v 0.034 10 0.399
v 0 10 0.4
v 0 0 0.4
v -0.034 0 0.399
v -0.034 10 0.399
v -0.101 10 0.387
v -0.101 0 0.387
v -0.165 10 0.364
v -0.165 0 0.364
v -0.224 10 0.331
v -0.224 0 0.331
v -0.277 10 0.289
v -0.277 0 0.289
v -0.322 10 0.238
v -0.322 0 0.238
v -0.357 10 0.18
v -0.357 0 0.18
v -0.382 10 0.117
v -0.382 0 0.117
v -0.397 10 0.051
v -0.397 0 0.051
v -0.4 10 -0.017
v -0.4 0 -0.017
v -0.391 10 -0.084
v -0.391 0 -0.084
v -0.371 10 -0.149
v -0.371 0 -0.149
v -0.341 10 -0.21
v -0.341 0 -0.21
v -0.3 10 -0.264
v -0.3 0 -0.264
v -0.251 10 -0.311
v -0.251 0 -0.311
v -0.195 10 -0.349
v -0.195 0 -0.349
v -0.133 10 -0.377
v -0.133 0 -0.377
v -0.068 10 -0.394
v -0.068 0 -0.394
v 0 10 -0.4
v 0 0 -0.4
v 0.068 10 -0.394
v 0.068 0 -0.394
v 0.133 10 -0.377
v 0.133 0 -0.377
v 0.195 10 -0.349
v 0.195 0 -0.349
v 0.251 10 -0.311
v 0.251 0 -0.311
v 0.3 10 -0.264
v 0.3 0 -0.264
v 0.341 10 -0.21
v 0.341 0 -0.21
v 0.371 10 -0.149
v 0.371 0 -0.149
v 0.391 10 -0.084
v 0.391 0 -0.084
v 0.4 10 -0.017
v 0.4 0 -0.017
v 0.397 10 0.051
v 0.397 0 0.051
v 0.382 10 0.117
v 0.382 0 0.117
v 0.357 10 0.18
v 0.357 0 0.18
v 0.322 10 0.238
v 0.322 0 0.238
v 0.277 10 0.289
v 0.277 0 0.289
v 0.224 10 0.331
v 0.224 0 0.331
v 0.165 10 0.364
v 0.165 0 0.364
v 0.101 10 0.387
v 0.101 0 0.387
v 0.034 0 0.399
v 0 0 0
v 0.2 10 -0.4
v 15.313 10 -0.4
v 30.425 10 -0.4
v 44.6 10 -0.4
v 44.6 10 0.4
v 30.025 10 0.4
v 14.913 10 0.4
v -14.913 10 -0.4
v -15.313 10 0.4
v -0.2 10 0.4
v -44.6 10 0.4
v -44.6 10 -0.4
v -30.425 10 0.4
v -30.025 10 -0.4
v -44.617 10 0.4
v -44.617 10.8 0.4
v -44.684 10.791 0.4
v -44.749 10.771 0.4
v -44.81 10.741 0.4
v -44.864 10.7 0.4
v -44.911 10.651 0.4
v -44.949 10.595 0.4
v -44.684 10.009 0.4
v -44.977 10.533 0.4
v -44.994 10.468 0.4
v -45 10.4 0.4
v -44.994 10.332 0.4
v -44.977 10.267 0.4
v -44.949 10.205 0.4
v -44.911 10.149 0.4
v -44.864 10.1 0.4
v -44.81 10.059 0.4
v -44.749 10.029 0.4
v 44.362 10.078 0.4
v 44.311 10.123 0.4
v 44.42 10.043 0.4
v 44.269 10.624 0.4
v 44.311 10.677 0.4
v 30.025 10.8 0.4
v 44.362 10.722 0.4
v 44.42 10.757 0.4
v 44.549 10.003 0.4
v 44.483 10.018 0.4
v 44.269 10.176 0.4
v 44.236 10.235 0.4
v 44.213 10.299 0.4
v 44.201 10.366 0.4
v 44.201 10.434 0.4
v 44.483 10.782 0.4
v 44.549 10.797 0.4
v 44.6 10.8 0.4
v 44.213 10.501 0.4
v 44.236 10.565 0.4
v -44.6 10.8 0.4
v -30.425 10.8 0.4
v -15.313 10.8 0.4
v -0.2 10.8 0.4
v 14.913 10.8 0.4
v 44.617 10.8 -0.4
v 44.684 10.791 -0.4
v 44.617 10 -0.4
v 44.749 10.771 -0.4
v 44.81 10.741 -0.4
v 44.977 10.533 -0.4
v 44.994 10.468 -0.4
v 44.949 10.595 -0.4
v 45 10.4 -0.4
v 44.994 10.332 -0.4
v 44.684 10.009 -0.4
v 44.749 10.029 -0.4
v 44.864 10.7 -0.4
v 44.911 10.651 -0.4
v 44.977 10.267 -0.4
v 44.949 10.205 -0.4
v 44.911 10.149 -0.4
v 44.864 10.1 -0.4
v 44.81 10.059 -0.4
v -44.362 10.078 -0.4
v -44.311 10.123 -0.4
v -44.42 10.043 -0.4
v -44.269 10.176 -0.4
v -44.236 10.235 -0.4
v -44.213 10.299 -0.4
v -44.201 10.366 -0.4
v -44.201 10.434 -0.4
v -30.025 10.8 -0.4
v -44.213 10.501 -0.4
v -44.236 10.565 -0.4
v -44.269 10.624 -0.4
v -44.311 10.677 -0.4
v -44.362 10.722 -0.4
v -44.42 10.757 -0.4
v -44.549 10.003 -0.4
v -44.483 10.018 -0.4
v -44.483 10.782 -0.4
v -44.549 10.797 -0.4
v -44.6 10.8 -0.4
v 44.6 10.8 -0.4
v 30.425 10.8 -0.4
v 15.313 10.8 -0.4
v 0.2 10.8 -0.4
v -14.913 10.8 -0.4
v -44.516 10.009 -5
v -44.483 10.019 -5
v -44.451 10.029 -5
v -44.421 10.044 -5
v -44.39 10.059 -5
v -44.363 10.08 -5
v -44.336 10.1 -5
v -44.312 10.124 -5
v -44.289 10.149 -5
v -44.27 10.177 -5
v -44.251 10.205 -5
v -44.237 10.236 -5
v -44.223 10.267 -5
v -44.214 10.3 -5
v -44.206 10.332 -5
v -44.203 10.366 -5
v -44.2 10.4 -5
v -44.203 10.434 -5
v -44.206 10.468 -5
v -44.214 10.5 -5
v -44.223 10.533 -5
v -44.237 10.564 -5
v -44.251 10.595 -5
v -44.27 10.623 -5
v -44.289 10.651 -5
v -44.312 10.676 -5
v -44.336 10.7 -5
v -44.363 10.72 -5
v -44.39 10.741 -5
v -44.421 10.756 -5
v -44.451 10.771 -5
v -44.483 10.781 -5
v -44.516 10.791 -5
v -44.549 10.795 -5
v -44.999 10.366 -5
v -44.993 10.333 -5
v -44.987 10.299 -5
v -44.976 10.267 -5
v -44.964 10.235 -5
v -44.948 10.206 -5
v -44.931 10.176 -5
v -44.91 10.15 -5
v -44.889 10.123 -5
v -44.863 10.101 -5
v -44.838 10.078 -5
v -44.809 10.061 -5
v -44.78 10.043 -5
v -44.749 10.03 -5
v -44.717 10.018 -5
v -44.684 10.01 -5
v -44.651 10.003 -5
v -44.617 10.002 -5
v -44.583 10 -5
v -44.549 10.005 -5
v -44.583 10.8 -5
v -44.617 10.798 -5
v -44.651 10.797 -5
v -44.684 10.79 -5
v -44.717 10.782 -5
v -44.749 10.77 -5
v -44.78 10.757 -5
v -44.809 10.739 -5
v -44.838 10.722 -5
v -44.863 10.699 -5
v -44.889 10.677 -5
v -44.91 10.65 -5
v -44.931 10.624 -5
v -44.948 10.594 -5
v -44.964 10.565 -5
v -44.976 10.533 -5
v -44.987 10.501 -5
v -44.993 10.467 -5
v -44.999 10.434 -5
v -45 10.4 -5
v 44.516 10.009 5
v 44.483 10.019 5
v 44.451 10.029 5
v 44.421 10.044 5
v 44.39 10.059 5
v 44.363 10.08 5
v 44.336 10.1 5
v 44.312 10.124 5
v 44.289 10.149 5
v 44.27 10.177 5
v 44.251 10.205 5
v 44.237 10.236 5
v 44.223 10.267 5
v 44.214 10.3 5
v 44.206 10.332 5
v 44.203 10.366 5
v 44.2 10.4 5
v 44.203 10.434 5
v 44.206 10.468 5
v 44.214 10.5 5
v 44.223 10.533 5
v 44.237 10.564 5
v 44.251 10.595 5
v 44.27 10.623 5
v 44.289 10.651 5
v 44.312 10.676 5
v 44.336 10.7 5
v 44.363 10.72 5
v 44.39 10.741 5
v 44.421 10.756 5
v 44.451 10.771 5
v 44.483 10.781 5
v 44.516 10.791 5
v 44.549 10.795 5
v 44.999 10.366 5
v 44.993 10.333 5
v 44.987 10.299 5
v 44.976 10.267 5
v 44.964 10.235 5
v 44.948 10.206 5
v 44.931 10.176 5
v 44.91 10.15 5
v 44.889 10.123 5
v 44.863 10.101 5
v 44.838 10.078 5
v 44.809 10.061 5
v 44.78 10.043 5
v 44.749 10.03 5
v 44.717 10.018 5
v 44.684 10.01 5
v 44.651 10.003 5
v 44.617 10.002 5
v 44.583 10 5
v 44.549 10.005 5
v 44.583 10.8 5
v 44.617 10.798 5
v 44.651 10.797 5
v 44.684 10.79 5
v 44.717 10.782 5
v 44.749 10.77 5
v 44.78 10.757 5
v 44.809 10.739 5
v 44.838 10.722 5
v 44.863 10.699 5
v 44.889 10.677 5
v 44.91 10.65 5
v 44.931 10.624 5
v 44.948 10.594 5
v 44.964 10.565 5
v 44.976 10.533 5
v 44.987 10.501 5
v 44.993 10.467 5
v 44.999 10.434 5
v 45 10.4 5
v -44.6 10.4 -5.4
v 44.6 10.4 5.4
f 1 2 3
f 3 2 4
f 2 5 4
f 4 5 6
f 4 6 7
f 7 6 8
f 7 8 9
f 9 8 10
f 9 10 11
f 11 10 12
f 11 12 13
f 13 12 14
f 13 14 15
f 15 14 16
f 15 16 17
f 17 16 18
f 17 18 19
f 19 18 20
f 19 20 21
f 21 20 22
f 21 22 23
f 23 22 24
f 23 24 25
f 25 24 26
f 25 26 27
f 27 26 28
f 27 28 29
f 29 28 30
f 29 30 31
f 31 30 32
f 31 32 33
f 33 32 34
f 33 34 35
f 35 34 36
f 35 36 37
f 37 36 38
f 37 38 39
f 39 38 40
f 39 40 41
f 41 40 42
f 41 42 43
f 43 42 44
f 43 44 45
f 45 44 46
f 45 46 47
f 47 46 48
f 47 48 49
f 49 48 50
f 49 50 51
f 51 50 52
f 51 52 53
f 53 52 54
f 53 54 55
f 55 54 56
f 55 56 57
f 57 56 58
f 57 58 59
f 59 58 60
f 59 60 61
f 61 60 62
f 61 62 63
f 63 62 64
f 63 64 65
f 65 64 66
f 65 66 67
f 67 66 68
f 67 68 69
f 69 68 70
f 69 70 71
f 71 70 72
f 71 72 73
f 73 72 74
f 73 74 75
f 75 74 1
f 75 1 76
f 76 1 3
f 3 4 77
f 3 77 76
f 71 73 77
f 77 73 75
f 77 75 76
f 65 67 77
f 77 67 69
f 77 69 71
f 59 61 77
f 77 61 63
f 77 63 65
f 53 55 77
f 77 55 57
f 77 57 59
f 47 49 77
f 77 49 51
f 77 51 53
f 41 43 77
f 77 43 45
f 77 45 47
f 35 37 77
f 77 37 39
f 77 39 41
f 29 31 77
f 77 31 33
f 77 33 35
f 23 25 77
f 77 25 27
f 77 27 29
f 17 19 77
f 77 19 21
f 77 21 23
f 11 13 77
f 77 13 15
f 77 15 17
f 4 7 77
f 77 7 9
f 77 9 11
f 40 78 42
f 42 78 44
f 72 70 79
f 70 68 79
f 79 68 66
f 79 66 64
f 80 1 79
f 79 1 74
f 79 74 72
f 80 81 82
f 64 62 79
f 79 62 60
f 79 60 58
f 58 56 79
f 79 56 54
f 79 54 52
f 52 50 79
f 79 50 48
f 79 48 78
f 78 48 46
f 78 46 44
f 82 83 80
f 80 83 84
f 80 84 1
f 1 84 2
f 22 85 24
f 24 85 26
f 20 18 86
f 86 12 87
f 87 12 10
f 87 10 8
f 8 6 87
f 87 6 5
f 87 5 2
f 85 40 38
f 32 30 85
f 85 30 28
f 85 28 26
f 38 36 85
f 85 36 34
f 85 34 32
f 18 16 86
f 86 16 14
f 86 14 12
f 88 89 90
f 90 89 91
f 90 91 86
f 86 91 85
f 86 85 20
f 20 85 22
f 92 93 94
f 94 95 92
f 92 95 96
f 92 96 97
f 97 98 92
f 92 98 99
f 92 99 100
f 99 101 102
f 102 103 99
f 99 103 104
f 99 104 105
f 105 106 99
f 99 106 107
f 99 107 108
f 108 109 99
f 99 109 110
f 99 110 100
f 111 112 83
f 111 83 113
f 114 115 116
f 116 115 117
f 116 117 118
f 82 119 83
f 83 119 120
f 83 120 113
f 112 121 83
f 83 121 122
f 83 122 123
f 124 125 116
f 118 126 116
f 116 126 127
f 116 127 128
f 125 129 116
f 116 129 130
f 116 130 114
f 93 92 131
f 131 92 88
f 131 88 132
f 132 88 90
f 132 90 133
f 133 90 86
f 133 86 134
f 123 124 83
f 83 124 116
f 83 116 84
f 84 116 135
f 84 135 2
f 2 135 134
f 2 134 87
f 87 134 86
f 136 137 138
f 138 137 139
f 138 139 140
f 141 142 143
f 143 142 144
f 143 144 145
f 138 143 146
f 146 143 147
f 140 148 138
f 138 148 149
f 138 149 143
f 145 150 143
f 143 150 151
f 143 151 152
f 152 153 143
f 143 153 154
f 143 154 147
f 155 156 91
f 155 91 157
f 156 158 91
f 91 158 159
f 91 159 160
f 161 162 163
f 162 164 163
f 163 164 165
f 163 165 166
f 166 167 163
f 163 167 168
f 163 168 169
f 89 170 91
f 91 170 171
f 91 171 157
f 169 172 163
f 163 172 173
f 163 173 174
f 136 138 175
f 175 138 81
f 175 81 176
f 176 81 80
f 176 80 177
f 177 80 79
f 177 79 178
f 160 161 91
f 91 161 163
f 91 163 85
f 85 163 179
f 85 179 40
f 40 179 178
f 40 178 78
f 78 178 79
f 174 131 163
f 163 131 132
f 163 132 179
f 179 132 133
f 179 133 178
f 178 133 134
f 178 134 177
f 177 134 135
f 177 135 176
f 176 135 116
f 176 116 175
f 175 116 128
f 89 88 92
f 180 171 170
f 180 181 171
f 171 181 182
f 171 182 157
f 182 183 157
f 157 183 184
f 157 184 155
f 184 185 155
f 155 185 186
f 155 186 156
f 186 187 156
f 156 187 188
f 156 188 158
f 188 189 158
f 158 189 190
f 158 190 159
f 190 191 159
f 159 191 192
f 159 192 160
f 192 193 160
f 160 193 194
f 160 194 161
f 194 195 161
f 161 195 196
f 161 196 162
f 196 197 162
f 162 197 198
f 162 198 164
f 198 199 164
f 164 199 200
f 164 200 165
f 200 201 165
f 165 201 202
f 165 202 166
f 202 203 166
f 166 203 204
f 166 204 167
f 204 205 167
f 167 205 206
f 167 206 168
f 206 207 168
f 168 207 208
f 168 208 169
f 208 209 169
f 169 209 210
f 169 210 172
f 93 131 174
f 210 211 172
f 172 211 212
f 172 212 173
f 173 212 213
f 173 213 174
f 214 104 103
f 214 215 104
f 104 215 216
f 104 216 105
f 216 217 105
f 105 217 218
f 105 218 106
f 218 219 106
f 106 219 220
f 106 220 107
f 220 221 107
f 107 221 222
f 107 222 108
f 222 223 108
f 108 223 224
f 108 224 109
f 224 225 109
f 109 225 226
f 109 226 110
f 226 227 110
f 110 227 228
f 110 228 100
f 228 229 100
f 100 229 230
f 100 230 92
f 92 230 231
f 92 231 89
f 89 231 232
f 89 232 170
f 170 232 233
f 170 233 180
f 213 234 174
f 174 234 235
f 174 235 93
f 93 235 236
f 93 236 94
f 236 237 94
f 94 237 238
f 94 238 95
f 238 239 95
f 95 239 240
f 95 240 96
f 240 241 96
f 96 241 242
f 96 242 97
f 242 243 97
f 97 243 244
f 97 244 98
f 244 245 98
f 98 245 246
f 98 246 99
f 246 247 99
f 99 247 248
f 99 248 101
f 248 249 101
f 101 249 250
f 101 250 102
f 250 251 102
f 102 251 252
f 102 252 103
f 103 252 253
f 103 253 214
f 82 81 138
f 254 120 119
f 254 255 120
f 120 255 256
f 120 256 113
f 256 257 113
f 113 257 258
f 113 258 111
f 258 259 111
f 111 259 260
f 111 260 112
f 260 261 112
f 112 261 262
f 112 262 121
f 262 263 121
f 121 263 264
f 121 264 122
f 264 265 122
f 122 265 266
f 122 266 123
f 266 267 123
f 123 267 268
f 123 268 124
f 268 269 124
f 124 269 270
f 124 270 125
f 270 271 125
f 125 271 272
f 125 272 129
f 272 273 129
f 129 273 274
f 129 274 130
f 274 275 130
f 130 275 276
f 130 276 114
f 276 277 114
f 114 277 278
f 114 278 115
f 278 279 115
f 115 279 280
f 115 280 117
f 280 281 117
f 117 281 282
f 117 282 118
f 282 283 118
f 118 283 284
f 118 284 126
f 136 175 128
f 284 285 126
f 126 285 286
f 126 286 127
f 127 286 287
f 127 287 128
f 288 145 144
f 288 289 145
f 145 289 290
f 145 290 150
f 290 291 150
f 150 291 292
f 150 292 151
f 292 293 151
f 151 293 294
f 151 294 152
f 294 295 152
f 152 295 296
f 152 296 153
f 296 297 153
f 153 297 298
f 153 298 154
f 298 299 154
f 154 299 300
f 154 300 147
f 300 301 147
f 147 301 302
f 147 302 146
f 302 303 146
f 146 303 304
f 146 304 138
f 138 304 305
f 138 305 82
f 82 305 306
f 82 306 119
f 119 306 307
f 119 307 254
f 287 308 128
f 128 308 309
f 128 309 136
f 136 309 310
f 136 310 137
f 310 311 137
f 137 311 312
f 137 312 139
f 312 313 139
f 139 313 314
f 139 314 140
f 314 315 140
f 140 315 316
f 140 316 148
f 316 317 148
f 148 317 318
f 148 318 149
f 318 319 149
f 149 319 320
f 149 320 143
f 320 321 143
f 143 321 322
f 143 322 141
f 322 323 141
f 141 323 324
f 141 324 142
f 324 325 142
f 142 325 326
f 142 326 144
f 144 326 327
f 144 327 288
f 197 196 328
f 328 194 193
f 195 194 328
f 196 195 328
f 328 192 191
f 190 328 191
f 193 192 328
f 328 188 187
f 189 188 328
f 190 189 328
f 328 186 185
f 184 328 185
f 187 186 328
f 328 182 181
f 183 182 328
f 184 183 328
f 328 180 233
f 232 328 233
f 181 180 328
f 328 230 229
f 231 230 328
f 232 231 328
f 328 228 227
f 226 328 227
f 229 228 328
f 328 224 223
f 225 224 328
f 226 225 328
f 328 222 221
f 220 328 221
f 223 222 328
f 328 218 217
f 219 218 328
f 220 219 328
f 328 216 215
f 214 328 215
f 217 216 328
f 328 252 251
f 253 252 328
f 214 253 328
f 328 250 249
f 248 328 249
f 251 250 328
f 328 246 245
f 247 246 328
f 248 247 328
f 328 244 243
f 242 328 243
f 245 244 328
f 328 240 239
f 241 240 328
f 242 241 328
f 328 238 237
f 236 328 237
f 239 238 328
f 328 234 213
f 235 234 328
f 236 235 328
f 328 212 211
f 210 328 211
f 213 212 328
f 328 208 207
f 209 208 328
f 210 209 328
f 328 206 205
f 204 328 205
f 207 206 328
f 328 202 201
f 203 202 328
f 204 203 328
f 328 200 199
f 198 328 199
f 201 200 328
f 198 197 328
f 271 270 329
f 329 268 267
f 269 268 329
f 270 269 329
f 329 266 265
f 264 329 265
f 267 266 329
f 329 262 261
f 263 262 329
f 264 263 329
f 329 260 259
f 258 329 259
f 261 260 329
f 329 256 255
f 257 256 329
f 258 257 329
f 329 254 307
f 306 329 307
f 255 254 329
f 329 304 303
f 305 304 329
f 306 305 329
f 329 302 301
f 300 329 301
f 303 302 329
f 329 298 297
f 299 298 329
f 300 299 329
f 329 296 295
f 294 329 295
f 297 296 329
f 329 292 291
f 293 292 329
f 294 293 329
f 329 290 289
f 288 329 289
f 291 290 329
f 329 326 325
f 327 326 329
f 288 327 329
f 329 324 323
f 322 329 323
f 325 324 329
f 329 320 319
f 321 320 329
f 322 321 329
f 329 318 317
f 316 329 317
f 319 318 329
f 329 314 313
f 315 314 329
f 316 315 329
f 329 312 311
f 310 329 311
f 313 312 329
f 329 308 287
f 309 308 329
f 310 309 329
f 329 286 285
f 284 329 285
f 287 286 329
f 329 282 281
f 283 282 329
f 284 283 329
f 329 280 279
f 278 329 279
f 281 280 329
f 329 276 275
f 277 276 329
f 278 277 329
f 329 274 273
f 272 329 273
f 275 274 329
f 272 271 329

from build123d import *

# Parameters (mm, degrees)
SKETCH_1_R      = 0.4
EXTRUDE_1_DEPTH = 10
SKETCH_2_W      = 90
SKETCH_2_H      = 0.8
EXTRUDE_2_DEPTH = 0.8
FILLET_1_R      = 0.4
SKETCH_3_R      = 0.4
EXTRUDE_3_DEPTH = 5
SKETCH_4_R      = 0.4
EXTRUDE_4_DEPTH = 5
CHAMFER_1_SIZE  = 0.4


with BuildPart() as part:
    # 草图1 → 凸台-拉伸1 (new body)
    with BuildSketch(Plane(origin=(0, 0, 0), x_dir=(1, 0, 0), z_dir=(0, 1, 0))):
        with Locations(Location((0, 0, 0), (0, 0, 270))):
            Circle(SKETCH_1_R)
    extrude(amount=EXTRUDE_1_DEPTH)

    # 草图2 → 凸台-拉伸2 (add)
    with BuildSketch(Plane(origin=(0, 10, 0), x_dir=(1, 0, 0), z_dir=(0, 1, 0))):
        Rectangle(SKETCH_2_W, SKETCH_2_H)
    extrude(amount=EXTRUDE_2_DEPTH)

    # 圆角1
    fillet_1_edges = [part.edges().sort_by_distance(p)[0] for p in [
        (45, 10, 0),
        (45, 10.8, 0),
        (-45, 10, 0),
        (-45, 10.8, 0),
    ]]
    fillet(fillet_1_edges, radius=FILLET_1_R - 0.0001)  # a hair under: the kernel refuses the full size

    # 草图3 → 凸台-拉伸3 (add)
    with BuildSketch(Plane.XY.offset(0.4)):
        with Locations((44.6, 10.4)):
            Circle(SKETCH_3_R)
    extrude(amount=EXTRUDE_3_DEPTH)

    # 草图4 → 凸台-拉伸4 (add)
    with BuildSketch(Plane(origin=(0, 0, -0.4), x_dir=(-1, 0, 0), z_dir=(0, 0, -1))):
        with Locations((44.6, 10.4)):
            Circle(SKETCH_4_R)
    extrude(amount=EXTRUDE_4_DEPTH)

    # 倒角1
    chamfer_1_edges = [part.edges().sort_by_distance(p)[0] for p in [
        (44.2, 10.4, 5.4),
        (-44.2, 10.4, -5.4),
    ]]
    chamfer(chamfer_1_edges, length=CHAMFER_1_SIZE)


solid = part.part
